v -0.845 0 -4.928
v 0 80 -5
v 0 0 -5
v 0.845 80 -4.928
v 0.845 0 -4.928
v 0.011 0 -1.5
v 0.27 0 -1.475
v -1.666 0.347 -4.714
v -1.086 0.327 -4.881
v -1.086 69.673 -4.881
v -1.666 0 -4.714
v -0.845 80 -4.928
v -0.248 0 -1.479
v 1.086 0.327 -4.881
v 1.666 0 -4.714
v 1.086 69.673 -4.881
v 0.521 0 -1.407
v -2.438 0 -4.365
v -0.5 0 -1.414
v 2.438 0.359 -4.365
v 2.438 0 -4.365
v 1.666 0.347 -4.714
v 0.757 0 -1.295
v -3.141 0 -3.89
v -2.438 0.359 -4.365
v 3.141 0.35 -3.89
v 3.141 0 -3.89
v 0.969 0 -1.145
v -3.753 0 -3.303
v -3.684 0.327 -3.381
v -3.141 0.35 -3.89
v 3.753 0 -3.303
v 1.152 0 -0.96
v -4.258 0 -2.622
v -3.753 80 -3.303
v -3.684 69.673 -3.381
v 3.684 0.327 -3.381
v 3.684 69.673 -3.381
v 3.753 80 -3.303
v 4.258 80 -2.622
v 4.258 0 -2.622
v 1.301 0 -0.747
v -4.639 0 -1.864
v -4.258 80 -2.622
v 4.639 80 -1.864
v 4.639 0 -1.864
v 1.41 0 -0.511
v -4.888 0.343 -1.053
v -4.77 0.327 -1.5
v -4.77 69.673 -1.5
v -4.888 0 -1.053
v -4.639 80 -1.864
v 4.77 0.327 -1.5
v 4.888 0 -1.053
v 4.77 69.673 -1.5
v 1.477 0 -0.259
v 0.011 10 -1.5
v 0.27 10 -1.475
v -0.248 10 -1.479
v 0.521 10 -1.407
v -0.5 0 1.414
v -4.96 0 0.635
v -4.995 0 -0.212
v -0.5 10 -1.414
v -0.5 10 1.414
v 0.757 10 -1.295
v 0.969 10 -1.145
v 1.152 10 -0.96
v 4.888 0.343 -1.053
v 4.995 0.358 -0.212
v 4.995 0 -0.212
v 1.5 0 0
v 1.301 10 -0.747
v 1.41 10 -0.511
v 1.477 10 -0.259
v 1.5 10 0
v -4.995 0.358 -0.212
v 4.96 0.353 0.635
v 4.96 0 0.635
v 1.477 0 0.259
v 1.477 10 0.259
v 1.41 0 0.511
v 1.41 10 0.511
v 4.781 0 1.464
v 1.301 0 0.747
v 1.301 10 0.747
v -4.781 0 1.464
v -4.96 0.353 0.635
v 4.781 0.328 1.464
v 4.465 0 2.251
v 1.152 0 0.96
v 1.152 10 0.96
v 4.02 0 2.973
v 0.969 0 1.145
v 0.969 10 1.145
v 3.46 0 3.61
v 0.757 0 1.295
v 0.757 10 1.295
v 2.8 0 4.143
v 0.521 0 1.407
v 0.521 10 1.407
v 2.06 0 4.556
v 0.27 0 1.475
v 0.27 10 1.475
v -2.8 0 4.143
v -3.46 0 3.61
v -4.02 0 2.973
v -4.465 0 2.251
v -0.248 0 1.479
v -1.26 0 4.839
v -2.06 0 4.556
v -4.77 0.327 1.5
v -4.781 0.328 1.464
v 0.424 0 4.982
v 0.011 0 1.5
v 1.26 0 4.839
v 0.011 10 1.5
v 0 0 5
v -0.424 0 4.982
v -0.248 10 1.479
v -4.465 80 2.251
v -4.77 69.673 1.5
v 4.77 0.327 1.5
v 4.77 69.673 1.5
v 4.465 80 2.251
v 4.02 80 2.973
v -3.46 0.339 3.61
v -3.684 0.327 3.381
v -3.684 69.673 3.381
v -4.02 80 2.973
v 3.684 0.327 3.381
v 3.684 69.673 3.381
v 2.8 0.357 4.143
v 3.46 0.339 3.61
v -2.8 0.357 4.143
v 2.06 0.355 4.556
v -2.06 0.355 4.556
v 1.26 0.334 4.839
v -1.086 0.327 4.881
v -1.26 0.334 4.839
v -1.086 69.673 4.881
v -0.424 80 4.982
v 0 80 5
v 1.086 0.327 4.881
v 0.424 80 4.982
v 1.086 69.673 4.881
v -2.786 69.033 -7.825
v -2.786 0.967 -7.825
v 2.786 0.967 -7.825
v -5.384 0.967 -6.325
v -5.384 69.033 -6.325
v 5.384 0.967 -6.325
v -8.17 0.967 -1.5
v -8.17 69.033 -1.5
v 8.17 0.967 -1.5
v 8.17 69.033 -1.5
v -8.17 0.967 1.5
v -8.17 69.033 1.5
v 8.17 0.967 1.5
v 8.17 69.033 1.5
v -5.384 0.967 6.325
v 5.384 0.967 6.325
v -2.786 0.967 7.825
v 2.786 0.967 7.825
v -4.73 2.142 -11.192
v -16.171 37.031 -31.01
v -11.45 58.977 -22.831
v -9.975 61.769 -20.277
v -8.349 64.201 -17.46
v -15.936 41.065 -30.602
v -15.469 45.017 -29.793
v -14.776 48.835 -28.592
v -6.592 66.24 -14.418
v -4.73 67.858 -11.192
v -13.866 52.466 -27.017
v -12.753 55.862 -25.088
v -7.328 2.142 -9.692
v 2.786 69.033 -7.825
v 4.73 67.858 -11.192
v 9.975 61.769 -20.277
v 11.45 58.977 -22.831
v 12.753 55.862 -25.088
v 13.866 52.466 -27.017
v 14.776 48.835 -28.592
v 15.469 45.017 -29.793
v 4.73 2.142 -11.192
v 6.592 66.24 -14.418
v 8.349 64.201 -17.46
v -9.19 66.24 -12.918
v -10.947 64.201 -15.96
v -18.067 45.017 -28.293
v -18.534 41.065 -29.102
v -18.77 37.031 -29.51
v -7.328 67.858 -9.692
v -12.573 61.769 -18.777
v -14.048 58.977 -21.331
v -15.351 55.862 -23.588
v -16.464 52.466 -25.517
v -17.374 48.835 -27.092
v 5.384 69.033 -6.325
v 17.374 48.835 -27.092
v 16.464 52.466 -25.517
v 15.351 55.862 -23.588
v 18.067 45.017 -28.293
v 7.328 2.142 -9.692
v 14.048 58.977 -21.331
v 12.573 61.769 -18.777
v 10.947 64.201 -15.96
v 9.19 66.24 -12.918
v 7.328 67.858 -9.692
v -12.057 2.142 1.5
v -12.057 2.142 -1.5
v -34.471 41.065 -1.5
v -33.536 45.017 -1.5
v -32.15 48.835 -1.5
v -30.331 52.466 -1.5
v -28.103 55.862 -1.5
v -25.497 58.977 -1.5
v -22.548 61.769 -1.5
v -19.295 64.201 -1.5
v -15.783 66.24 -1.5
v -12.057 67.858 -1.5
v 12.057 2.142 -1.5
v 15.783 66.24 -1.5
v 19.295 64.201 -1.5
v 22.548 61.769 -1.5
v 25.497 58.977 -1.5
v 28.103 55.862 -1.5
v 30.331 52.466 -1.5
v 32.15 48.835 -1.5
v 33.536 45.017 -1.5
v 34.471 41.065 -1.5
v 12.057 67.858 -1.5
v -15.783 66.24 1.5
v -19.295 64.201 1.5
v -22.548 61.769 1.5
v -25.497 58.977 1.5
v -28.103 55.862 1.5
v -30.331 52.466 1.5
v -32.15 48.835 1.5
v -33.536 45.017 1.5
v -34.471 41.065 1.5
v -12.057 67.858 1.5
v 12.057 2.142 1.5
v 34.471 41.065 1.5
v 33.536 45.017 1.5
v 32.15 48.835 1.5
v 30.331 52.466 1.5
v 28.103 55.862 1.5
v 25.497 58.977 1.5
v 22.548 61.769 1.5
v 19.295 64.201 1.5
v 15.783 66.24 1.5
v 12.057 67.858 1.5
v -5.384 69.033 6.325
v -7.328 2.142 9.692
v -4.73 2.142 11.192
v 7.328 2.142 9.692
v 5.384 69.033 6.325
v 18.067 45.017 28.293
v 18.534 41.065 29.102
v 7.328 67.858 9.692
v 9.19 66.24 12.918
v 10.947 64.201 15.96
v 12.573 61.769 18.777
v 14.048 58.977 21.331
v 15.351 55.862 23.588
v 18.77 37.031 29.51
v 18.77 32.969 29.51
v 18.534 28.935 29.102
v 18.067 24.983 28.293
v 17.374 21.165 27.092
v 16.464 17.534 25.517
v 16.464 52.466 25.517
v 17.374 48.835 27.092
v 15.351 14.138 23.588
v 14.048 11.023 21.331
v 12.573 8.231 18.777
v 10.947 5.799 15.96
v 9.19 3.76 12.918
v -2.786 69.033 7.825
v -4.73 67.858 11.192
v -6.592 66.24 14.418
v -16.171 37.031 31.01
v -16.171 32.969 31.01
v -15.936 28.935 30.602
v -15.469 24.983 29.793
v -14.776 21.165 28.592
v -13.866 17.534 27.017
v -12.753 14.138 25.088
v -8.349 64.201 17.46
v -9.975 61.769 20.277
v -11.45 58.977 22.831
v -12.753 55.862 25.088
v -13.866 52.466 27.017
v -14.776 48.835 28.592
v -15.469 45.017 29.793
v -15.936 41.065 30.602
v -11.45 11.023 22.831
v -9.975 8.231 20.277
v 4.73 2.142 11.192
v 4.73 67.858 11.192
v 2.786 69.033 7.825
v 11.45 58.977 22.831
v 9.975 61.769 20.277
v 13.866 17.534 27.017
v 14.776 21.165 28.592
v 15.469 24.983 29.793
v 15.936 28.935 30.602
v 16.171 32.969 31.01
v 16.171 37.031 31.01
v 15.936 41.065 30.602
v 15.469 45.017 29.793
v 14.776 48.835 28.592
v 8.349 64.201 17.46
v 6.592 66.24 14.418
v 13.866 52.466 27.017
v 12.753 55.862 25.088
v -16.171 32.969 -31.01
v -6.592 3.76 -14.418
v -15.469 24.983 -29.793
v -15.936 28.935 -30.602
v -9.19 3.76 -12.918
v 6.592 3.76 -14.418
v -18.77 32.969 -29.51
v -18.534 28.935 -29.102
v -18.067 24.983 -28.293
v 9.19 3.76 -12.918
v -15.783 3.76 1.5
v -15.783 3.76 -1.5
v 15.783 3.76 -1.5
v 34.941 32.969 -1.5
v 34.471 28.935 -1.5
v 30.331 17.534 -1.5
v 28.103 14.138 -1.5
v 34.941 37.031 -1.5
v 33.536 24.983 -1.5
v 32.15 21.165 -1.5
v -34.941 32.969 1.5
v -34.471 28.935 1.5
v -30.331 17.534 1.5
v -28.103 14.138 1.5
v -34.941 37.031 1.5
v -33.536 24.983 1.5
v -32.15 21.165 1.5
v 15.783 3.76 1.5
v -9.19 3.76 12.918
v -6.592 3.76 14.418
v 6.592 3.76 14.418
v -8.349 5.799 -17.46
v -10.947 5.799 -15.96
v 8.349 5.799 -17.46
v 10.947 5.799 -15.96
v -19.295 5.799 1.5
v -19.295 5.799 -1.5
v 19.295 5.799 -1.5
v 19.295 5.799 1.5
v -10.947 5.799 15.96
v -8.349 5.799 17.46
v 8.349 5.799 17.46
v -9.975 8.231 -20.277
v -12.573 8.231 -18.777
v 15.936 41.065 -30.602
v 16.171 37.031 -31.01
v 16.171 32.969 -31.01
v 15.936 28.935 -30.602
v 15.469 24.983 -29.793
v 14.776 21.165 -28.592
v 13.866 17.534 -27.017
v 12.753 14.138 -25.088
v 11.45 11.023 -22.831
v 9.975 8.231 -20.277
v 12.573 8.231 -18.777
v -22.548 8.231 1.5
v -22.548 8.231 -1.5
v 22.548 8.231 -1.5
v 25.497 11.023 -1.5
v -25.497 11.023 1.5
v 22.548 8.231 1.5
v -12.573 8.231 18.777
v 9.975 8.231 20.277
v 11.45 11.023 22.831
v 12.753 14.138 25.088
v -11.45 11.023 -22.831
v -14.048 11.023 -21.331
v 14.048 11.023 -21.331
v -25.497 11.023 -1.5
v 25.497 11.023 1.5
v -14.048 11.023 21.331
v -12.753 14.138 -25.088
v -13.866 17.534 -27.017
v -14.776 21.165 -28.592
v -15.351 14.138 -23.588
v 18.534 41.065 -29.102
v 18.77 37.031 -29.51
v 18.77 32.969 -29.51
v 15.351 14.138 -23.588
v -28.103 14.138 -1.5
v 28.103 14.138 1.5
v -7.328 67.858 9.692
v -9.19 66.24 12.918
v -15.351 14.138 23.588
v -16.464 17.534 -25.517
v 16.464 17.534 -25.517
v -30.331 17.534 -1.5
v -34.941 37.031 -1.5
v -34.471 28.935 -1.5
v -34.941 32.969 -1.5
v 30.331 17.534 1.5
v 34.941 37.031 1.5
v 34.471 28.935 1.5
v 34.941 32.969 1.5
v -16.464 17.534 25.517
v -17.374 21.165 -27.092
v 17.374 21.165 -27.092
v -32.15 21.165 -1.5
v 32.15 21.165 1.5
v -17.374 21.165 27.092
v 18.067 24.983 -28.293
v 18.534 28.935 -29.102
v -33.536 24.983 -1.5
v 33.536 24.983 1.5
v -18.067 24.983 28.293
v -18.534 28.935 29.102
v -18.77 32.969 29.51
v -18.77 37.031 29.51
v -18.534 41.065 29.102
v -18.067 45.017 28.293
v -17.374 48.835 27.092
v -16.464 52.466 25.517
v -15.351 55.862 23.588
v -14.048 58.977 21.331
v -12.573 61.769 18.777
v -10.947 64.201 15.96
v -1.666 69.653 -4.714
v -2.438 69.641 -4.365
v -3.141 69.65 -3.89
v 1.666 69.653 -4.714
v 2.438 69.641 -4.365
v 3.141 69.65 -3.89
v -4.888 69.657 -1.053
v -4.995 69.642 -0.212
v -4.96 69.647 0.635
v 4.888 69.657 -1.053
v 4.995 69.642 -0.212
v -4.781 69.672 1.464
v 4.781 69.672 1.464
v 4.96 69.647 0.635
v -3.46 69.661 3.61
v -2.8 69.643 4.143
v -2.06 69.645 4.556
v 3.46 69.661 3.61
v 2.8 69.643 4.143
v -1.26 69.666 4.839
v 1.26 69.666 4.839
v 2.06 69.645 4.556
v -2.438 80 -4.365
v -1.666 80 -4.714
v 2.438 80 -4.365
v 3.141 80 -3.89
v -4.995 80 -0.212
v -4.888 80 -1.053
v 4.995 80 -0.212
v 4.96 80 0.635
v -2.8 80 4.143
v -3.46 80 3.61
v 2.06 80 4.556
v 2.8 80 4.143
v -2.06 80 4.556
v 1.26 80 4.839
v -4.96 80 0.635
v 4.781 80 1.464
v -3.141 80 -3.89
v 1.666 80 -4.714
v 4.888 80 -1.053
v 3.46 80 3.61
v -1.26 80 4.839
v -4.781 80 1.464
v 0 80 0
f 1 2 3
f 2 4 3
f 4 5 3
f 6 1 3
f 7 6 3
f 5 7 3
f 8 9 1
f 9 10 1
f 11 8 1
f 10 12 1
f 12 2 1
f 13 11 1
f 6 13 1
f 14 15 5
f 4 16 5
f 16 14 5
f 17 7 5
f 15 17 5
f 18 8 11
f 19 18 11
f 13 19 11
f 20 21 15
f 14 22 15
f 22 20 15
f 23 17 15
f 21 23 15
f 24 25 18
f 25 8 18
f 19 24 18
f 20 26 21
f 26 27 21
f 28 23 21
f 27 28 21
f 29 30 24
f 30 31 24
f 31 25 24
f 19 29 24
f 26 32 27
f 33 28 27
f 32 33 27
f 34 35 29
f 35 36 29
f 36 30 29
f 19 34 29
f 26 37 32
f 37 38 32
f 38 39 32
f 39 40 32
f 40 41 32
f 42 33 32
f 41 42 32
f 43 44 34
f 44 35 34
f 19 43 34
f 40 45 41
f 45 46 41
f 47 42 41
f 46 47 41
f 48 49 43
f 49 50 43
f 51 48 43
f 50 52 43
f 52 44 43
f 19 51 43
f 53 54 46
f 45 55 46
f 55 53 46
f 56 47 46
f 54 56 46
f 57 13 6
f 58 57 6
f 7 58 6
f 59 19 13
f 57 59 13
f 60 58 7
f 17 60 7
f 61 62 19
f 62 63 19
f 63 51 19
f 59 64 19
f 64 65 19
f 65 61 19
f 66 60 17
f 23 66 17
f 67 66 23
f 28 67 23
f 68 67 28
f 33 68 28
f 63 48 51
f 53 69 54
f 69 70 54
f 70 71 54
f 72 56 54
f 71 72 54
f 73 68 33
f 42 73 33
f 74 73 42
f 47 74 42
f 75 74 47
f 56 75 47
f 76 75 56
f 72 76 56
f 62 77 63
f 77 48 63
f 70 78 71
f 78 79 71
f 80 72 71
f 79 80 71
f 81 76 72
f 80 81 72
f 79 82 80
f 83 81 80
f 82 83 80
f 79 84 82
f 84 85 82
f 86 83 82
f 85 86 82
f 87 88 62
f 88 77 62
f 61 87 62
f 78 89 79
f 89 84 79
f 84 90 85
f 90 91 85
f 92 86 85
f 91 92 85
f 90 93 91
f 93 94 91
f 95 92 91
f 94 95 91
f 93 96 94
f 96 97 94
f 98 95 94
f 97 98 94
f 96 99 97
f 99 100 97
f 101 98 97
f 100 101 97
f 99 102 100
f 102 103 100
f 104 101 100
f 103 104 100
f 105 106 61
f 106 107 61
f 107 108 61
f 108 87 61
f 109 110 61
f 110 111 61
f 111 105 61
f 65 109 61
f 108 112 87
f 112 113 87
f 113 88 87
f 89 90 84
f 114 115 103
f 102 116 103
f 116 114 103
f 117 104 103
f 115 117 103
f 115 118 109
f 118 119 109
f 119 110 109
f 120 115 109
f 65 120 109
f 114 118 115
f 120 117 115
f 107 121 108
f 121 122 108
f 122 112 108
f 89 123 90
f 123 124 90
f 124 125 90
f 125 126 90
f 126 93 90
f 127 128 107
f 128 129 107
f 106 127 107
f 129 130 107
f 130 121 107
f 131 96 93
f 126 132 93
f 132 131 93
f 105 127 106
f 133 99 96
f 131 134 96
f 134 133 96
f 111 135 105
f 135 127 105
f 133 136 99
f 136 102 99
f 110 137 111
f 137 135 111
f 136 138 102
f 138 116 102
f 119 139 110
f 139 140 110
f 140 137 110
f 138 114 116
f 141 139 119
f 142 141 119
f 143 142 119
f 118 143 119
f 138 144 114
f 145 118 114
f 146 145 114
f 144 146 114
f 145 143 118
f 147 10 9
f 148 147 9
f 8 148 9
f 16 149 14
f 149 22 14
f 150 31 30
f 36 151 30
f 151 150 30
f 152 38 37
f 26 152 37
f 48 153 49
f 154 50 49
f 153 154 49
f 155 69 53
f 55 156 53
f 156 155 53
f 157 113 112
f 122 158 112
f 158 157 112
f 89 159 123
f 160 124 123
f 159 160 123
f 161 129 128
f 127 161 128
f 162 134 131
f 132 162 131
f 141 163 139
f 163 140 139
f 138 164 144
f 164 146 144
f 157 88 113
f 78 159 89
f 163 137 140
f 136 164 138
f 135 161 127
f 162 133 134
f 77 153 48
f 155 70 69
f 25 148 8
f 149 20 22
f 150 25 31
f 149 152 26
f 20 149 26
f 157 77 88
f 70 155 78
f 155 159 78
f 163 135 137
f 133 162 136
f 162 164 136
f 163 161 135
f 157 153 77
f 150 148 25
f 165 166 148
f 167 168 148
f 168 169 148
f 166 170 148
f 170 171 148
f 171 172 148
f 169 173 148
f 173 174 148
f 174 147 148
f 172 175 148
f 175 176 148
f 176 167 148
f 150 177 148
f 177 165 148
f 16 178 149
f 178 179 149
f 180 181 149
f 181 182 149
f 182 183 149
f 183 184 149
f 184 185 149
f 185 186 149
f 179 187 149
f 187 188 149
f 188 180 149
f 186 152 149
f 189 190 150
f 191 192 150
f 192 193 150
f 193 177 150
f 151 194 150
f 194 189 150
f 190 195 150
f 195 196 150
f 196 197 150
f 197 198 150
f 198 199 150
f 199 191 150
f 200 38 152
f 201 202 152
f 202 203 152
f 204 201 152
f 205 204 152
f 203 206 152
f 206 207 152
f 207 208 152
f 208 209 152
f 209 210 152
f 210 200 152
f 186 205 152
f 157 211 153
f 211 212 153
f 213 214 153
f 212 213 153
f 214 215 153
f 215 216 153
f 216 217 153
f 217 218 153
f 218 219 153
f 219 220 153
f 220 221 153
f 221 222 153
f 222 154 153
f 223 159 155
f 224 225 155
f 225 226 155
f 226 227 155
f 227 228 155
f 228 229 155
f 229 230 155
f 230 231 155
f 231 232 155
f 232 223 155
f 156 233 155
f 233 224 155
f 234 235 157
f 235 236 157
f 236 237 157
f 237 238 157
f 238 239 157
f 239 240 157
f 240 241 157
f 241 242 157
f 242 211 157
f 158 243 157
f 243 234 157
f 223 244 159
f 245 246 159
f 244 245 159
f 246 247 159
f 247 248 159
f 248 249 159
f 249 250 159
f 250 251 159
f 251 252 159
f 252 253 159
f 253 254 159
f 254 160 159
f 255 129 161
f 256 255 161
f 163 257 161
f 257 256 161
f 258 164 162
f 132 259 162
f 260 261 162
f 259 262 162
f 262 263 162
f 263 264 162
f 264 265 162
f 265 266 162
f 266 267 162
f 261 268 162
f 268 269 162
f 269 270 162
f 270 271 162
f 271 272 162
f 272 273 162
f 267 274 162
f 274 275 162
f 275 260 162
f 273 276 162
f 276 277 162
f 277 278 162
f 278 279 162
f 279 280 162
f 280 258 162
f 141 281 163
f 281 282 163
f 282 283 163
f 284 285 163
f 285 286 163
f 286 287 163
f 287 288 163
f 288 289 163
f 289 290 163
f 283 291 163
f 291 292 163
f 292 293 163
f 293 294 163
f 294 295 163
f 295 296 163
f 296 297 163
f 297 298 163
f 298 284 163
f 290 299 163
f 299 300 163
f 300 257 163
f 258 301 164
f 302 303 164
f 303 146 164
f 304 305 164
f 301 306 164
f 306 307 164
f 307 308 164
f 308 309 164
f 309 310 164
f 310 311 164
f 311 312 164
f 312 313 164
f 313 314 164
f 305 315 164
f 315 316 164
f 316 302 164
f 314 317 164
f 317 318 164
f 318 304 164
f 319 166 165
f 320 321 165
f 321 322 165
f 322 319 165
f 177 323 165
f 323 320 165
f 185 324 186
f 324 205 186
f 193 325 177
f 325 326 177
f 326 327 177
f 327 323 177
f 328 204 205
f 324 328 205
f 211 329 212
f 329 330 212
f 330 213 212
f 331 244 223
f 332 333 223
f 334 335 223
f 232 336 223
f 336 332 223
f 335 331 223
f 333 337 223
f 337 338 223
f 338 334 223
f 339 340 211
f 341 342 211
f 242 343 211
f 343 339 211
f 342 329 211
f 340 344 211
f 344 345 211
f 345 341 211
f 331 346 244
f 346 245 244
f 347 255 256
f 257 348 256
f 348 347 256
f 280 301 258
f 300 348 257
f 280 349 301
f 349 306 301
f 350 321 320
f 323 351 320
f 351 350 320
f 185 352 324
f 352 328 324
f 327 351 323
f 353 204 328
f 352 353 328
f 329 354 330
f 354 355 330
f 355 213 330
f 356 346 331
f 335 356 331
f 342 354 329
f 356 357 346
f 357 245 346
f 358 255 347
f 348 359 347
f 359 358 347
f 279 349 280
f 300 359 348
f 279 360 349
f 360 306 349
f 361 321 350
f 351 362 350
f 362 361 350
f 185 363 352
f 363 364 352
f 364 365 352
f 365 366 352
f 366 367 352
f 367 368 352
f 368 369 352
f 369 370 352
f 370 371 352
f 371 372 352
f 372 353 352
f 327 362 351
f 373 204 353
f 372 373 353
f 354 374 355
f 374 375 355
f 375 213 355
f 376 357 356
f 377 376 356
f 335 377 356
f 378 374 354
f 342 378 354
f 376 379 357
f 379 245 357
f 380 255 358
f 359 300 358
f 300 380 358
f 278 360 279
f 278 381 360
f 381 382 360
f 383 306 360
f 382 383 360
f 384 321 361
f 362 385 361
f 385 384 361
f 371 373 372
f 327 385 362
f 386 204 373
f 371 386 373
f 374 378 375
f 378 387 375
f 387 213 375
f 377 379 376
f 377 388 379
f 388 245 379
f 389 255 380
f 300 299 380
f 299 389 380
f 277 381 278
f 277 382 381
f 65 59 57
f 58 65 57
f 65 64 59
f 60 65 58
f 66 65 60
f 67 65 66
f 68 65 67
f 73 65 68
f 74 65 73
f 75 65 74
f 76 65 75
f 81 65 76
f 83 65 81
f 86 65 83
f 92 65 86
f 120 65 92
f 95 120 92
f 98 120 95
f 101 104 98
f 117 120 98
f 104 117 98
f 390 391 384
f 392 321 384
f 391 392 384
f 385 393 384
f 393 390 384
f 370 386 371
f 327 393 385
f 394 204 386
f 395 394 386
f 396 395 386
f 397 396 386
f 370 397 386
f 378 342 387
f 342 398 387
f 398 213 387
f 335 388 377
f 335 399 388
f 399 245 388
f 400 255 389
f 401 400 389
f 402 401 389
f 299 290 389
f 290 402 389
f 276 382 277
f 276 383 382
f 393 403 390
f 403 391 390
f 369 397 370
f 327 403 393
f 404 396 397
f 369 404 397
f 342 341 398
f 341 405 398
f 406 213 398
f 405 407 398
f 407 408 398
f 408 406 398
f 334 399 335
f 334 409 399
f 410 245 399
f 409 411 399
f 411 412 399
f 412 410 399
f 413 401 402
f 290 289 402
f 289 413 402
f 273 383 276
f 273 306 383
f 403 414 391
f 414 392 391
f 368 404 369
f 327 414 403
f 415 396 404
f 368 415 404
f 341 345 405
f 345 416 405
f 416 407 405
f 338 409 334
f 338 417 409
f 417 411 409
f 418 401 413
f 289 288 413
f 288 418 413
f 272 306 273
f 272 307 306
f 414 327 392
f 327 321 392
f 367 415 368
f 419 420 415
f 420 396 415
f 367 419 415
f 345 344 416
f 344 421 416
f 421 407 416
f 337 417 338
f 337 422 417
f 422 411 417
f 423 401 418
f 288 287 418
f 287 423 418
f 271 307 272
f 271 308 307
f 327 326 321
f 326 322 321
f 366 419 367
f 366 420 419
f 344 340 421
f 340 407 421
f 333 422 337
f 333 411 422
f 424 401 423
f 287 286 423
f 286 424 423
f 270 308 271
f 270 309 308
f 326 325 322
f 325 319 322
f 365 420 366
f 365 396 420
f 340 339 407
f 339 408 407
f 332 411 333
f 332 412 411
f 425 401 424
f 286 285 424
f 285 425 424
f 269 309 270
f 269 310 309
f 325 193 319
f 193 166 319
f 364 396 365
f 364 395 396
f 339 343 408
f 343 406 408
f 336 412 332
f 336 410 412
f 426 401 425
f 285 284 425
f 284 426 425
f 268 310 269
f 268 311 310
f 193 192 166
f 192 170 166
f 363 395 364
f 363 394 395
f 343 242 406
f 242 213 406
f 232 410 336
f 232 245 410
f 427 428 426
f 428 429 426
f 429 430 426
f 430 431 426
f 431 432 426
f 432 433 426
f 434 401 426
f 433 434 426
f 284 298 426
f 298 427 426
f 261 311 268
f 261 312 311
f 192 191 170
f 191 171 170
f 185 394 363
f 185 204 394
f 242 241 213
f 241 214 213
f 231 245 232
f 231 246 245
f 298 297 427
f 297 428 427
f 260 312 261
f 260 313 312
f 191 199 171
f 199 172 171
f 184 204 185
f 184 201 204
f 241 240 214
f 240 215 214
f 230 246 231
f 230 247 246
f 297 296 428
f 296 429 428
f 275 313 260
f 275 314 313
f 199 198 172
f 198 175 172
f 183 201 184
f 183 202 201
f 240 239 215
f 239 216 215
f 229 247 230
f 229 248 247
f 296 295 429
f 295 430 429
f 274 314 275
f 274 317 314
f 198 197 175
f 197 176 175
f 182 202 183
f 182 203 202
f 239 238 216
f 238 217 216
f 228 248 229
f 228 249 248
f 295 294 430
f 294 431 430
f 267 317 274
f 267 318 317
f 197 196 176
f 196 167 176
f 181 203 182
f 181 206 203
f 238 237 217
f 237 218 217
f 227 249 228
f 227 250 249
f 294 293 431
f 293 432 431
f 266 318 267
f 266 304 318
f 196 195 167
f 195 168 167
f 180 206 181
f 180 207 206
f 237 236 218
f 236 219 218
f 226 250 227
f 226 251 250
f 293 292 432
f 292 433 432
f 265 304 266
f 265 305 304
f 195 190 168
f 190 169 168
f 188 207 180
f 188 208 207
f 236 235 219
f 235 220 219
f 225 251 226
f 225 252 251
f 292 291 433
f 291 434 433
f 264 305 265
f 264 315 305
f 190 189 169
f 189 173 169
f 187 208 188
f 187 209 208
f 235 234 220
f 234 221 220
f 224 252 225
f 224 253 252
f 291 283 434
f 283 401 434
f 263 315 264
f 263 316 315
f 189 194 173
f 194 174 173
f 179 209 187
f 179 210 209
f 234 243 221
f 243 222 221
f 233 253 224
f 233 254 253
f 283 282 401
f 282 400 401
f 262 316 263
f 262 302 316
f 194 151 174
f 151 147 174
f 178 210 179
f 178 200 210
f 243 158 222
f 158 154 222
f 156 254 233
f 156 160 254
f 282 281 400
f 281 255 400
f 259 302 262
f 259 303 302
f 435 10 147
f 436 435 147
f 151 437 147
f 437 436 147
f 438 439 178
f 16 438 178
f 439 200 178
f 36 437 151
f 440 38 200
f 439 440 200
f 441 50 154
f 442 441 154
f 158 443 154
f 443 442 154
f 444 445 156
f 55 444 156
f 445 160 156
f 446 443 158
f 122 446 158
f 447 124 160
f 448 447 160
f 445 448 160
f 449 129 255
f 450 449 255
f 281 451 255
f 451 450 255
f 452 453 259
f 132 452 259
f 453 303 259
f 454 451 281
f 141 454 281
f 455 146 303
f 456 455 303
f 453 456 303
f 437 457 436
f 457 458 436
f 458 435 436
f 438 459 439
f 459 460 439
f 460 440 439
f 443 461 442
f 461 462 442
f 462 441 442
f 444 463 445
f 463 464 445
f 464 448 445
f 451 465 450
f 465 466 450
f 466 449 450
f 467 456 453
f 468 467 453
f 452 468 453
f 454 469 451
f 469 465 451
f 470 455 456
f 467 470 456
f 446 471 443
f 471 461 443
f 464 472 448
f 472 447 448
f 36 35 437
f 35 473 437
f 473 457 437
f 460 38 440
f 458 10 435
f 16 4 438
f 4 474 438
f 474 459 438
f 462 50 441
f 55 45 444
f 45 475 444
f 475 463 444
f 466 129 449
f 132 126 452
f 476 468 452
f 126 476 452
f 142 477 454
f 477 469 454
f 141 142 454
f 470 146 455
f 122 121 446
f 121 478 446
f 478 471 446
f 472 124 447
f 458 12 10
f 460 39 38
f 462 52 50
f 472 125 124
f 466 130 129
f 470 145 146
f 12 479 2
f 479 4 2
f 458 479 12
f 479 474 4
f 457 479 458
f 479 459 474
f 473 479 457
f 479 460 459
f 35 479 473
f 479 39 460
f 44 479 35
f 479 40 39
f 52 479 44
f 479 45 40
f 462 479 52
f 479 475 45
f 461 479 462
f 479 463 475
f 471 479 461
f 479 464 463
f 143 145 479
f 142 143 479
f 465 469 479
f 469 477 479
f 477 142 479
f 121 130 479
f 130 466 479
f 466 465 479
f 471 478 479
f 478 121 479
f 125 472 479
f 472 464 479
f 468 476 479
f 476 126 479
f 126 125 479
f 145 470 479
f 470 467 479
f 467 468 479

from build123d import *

# Parameters (mm, degrees)
SKETCH2_R           = 5
BOSS_EXTRUDE1_DEPTH = 80
BOSS_EXTRUDE2_DEPTH = 1.5
CIRPATTERN1_COUNT   = 6
CUT_EXTRUDE1_DEPTH  = 10


with BuildPart() as part:
    # Sketch2 → Boss-Extrude1 (new body)
    with BuildSketch(Plane(origin=(0, 0, 0), x_dir=(1, 0, 0), z_dir=(0, 1, 0))):
        Circle(SKETCH2_R)
    extrude(amount=BOSS_EXTRUDE1_DEPTH)

    # Sketch3 → Boss-Extrude2 (add, symmetric)
    with BuildSketch(Plane.XY):
        with BuildLine():
            Line((0, 70), (0, 0))
            ThreePointArc((0, 0), (35, 35), (0, 70))
        make_face()
    boss_extrude2 = extrude(amount=BOSS_EXTRUDE2_DEPTH, both=True)

    # CirPattern1: Boss-Extrude2 ×6 about axis
    cirpattern1_axis = Axis((0, 80, 0), (0, -1, 0))
    for i in range(1, CIRPATTERN1_COUNT):
        add(boss_extrude2.rotate(cirpattern1_axis, i * 360 / CIRPATTERN1_COUNT))

    # Sketch4 → Cut-Extrude1 (cut)
    with BuildSketch(Plane.XZ):
        with BuildLine():
            Line((-0.5, 1.414213562), (-0.5, -1.414213562))
            ThreePointArc((-0.5, -1.414213562), (1.5, 0), (-0.5, 1.414213562))
        make_face()
    extrude(amount=-CUT_EXTRUDE1_DEPTH, mode=Mode.SUBTRACT)


solid = part.part
